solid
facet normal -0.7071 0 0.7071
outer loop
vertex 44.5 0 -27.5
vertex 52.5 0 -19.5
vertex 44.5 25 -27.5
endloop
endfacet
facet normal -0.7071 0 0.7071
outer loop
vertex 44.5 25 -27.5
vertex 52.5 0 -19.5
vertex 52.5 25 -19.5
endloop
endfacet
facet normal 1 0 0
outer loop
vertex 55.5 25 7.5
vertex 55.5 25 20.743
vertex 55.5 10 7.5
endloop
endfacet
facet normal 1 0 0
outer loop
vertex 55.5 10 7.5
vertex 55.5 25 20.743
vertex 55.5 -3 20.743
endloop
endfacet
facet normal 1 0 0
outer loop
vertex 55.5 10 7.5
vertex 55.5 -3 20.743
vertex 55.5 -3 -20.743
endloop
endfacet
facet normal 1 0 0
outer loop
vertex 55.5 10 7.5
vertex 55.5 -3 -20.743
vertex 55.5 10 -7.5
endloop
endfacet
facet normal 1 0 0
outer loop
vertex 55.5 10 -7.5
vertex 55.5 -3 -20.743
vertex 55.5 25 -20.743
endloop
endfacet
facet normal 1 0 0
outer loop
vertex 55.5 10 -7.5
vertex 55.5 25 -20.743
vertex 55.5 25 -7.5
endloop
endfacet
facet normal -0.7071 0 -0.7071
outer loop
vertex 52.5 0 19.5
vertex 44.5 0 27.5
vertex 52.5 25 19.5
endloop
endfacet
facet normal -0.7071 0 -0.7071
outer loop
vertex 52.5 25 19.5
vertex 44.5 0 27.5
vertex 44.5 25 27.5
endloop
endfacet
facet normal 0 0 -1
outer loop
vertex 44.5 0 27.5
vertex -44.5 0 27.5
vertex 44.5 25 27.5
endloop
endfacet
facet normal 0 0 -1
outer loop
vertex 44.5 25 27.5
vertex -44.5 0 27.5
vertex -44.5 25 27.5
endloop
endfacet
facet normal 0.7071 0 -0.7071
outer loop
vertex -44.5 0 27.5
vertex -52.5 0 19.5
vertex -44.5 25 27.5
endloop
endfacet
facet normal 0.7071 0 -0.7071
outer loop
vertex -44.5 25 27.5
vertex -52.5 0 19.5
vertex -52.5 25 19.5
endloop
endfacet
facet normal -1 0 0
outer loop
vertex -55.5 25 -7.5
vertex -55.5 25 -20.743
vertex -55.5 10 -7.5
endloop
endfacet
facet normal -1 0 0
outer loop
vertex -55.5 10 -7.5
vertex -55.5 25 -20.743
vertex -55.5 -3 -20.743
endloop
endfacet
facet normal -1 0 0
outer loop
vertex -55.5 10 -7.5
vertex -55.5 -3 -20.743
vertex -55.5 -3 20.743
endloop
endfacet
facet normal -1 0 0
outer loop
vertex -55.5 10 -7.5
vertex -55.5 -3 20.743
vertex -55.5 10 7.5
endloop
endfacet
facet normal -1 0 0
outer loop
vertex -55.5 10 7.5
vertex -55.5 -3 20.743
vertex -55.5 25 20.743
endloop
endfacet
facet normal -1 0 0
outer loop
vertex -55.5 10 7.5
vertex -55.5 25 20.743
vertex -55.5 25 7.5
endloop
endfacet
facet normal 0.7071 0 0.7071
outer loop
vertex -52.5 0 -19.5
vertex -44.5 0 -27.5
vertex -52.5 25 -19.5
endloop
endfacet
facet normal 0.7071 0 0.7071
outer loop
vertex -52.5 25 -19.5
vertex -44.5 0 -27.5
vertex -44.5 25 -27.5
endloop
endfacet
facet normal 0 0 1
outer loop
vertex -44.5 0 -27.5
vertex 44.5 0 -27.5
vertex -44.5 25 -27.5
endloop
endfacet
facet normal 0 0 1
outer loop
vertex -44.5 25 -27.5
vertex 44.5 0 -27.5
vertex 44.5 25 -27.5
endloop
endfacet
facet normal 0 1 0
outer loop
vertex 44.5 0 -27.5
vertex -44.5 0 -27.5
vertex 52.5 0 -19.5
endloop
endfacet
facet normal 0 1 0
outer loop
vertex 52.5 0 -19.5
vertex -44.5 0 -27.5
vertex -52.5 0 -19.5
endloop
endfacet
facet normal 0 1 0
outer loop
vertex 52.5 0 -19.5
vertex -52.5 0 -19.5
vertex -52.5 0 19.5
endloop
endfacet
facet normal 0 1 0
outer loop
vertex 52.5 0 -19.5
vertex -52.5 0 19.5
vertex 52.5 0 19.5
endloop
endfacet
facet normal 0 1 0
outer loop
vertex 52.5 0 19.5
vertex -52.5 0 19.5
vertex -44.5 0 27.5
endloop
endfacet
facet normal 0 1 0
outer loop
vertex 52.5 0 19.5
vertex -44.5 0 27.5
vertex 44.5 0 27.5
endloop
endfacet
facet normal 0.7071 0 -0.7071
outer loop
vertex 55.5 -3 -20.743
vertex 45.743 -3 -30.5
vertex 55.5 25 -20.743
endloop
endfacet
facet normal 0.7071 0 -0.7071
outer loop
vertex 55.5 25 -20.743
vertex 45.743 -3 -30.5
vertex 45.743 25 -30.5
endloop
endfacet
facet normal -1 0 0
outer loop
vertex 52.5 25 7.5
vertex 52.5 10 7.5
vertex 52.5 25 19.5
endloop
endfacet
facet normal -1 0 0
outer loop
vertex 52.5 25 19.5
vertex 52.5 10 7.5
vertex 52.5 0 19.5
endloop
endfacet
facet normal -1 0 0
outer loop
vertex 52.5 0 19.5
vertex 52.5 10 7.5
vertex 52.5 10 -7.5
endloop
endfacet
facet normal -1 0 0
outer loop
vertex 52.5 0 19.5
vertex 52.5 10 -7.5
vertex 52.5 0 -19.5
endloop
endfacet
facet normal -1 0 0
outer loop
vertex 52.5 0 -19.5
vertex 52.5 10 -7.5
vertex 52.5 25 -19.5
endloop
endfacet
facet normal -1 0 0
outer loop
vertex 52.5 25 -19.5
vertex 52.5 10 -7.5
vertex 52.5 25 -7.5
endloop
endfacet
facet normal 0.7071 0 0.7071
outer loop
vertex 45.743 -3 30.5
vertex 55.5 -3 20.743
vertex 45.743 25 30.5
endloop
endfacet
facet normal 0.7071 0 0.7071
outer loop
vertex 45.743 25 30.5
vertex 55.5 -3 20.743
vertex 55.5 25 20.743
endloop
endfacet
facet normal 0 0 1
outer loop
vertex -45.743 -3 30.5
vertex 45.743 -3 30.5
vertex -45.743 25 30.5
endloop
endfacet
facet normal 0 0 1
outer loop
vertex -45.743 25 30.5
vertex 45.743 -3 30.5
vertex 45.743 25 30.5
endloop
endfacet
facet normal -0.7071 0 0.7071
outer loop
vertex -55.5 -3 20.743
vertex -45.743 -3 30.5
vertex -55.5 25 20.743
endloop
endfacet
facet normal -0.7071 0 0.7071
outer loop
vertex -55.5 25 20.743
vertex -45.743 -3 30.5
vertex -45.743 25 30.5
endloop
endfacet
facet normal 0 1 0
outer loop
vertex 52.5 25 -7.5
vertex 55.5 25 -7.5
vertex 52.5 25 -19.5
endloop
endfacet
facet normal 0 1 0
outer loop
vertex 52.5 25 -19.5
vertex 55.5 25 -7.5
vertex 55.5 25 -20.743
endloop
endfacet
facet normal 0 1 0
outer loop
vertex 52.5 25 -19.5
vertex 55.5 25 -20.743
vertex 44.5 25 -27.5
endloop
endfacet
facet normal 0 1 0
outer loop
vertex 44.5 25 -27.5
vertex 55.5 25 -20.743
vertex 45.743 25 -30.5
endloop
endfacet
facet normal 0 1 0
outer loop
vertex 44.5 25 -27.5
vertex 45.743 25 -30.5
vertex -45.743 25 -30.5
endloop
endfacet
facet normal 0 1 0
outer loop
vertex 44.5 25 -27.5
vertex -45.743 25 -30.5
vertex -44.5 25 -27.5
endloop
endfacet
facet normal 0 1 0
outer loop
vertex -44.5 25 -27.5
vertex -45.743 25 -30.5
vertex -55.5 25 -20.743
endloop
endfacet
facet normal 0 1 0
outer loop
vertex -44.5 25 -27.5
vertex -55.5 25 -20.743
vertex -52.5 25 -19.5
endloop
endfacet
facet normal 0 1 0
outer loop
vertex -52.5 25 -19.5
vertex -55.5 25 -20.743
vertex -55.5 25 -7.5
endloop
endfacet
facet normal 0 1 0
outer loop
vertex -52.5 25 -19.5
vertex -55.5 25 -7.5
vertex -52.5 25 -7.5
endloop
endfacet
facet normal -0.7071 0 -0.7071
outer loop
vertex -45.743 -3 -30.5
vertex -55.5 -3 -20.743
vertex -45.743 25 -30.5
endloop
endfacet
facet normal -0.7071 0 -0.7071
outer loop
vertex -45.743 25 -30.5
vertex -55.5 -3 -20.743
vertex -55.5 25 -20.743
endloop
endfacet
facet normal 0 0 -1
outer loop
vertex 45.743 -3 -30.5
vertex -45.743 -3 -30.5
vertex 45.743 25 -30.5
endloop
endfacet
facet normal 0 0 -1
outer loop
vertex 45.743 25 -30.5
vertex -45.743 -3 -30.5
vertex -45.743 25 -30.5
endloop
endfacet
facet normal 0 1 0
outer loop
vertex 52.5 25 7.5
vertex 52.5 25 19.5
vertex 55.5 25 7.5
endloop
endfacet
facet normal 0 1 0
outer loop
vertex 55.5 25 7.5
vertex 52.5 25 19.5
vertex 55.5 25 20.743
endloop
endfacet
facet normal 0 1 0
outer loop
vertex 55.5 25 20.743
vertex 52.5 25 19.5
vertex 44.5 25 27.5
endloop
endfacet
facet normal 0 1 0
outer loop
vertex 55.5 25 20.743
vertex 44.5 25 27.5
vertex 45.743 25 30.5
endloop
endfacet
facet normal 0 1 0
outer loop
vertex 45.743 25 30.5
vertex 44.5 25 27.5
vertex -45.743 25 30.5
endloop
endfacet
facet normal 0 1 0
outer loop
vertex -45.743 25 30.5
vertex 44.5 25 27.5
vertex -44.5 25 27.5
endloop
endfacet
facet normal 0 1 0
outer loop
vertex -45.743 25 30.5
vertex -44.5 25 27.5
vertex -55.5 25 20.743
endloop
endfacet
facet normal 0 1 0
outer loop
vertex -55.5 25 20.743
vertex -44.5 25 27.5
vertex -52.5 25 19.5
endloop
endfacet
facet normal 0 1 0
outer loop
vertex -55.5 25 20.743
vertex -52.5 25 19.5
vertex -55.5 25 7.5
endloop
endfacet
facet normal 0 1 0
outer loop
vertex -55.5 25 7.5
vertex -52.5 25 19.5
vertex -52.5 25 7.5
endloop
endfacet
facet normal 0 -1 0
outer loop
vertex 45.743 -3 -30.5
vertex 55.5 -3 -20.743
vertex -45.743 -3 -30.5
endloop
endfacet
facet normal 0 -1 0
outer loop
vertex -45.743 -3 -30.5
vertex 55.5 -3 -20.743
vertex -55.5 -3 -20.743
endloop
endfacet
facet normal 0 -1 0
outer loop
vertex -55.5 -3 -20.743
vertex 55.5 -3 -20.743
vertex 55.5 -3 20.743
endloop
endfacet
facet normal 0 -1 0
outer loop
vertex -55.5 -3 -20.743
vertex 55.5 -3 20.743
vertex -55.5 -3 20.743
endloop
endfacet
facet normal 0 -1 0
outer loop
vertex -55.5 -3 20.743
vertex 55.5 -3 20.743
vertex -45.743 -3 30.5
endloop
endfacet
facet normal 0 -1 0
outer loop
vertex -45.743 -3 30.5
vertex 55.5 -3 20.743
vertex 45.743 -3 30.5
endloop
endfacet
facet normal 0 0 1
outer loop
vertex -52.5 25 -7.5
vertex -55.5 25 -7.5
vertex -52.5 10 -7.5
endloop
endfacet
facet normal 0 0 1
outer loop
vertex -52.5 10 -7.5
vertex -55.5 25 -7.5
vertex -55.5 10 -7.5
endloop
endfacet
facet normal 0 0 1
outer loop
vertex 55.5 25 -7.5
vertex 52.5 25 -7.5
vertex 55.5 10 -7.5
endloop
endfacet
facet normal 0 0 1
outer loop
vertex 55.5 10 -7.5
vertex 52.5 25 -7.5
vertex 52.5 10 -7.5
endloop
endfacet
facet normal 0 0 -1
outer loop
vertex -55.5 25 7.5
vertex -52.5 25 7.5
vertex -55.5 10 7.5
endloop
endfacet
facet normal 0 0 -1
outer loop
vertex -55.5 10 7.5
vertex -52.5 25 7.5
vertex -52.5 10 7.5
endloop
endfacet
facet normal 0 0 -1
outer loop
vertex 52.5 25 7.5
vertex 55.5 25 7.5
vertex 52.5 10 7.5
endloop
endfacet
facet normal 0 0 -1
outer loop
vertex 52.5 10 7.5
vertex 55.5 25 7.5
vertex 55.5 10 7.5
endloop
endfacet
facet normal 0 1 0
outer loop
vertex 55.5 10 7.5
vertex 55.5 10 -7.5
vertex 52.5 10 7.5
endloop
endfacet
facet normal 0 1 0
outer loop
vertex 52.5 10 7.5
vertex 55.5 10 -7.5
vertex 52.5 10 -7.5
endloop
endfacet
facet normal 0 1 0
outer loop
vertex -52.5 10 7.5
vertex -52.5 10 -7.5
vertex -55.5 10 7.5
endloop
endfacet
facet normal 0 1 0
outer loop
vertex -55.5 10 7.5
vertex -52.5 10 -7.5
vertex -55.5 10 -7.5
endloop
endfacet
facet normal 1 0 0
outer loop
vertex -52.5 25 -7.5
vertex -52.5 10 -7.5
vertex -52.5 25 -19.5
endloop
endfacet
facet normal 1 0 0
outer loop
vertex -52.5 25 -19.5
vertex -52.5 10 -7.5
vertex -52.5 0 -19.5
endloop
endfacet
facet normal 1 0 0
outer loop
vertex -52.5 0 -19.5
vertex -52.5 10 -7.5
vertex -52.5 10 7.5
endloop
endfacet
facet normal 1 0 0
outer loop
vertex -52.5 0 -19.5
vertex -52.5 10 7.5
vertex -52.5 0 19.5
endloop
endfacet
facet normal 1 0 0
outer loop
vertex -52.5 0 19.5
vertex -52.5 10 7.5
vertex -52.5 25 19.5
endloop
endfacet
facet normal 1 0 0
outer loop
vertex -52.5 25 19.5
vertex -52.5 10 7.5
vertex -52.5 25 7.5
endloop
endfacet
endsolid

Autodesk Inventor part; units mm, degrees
ref_plane "YZ Plane" through (0, 0, 0) normal (1, 0, 0) x (0, 1, 0)
ref_plane "XZ Plane" through (0, 0, 0) normal (0, 1, 0) x (-1, 0, 0)
ref_plane "XY Plane" through (0, 0, 0) normal (0, 0, 1) x (1, 0, 0)
sketch "Sketch1" plane through (0, 0, 0) normal (0, 1, 0) x (-1, 0, 0)
  line L0 (-52.5, 27.5) -> (52.5, 27.5)
  line L1 (52.5, 27.5) -> (52.5, -27.5)
  line L2 (52.5, -27.5) -> (-52.5, -27.5)
  line L3 (-52.5, -27.5) -> (-52.5, 27.5)
  line L4 (-52.5, 27.5) -> (52.5, -27.5) construction
  line L5 (52.5, 27.5) -> (-52.5, -27.5) construction
  line L6 (52.5, 19.5) -> (44.5, 27.5)
  line L7 (52.5, -19.5) -> (44.5, -27.5)
  line L8 (-44.5, 27.5) -> (-52.5, 19.5)
  line L9 (-52.5, -19.5) -> (-44.5, -27.5)
  point P0 (0, 0)
  dimension "d0" = 105
  dimension "d1" = 55
  dimension "d4" = 45
  dimension "d5" = 8
  dimension "d6" = 8
  dimension "d7" = 8
  dimension "d8" = 8
extrude "Extrusion1" add sketch "Sketch1" along normal blind 25 contours L0 L6 L1 L7 L2 L9 L3 L8
shell "Shell1" thickness 3 outward yes removed faces 1 at (-14.8333, 25, -9.1667)
sketch "Sketch2" plane through (0, 25, 0) normal (0, 1, 0) x (1, 0, 0)
  line L0 (-55.5, 20.7426) -> (-55.5, -20.7426) projected
  line L1 (-52.5, -19.5) -> (-52.5, 19.5) projected
  line L2 (-55.5, 7.5) -> (-52.5, 7.5)
  line L3 (-52.5, 7.5) -> (-52.5, -7.5)
  line L4 (-52.5, -7.5) -> (-55.5, -7.5)
  line L5 (-55.5, -7.5) -> (-55.5, 7.5)
  line L6 (55.5, -20.7426) -> (55.5, 20.7426) projected
  line L7 (52.5, 7.5) -> (55.5, 7.5)
  line L8 (55.5, 7.5) -> (55.5, -7.5)
  line L9 (55.5, -7.5) -> (52.5, -7.5)
  line L10 (52.5, -7.5) -> (52.5, 7.5)
  line L11 (52.5, 19.5) -> (52.5, -19.5) projected
  point P0 (0, 0)
  point P1 (-54, -7.5)
  point P2 (-52.5, 0)
  point P3 (-52.5, 0)
  point P4 (54, -7.5)
  point P5 (54, 7.5)
  point P6 (52.5, 0)
  point P7 (52.5, 0)
  dimension "d10" = 15
  dimension "d11" = 0
  dimension "d12" = 0
  dimension "d13" = 15
  dimension "d14" = 0
extrude "Extrusion2" cut sketch "Sketch2" against normal blind 15
properties part number "case_v1"
